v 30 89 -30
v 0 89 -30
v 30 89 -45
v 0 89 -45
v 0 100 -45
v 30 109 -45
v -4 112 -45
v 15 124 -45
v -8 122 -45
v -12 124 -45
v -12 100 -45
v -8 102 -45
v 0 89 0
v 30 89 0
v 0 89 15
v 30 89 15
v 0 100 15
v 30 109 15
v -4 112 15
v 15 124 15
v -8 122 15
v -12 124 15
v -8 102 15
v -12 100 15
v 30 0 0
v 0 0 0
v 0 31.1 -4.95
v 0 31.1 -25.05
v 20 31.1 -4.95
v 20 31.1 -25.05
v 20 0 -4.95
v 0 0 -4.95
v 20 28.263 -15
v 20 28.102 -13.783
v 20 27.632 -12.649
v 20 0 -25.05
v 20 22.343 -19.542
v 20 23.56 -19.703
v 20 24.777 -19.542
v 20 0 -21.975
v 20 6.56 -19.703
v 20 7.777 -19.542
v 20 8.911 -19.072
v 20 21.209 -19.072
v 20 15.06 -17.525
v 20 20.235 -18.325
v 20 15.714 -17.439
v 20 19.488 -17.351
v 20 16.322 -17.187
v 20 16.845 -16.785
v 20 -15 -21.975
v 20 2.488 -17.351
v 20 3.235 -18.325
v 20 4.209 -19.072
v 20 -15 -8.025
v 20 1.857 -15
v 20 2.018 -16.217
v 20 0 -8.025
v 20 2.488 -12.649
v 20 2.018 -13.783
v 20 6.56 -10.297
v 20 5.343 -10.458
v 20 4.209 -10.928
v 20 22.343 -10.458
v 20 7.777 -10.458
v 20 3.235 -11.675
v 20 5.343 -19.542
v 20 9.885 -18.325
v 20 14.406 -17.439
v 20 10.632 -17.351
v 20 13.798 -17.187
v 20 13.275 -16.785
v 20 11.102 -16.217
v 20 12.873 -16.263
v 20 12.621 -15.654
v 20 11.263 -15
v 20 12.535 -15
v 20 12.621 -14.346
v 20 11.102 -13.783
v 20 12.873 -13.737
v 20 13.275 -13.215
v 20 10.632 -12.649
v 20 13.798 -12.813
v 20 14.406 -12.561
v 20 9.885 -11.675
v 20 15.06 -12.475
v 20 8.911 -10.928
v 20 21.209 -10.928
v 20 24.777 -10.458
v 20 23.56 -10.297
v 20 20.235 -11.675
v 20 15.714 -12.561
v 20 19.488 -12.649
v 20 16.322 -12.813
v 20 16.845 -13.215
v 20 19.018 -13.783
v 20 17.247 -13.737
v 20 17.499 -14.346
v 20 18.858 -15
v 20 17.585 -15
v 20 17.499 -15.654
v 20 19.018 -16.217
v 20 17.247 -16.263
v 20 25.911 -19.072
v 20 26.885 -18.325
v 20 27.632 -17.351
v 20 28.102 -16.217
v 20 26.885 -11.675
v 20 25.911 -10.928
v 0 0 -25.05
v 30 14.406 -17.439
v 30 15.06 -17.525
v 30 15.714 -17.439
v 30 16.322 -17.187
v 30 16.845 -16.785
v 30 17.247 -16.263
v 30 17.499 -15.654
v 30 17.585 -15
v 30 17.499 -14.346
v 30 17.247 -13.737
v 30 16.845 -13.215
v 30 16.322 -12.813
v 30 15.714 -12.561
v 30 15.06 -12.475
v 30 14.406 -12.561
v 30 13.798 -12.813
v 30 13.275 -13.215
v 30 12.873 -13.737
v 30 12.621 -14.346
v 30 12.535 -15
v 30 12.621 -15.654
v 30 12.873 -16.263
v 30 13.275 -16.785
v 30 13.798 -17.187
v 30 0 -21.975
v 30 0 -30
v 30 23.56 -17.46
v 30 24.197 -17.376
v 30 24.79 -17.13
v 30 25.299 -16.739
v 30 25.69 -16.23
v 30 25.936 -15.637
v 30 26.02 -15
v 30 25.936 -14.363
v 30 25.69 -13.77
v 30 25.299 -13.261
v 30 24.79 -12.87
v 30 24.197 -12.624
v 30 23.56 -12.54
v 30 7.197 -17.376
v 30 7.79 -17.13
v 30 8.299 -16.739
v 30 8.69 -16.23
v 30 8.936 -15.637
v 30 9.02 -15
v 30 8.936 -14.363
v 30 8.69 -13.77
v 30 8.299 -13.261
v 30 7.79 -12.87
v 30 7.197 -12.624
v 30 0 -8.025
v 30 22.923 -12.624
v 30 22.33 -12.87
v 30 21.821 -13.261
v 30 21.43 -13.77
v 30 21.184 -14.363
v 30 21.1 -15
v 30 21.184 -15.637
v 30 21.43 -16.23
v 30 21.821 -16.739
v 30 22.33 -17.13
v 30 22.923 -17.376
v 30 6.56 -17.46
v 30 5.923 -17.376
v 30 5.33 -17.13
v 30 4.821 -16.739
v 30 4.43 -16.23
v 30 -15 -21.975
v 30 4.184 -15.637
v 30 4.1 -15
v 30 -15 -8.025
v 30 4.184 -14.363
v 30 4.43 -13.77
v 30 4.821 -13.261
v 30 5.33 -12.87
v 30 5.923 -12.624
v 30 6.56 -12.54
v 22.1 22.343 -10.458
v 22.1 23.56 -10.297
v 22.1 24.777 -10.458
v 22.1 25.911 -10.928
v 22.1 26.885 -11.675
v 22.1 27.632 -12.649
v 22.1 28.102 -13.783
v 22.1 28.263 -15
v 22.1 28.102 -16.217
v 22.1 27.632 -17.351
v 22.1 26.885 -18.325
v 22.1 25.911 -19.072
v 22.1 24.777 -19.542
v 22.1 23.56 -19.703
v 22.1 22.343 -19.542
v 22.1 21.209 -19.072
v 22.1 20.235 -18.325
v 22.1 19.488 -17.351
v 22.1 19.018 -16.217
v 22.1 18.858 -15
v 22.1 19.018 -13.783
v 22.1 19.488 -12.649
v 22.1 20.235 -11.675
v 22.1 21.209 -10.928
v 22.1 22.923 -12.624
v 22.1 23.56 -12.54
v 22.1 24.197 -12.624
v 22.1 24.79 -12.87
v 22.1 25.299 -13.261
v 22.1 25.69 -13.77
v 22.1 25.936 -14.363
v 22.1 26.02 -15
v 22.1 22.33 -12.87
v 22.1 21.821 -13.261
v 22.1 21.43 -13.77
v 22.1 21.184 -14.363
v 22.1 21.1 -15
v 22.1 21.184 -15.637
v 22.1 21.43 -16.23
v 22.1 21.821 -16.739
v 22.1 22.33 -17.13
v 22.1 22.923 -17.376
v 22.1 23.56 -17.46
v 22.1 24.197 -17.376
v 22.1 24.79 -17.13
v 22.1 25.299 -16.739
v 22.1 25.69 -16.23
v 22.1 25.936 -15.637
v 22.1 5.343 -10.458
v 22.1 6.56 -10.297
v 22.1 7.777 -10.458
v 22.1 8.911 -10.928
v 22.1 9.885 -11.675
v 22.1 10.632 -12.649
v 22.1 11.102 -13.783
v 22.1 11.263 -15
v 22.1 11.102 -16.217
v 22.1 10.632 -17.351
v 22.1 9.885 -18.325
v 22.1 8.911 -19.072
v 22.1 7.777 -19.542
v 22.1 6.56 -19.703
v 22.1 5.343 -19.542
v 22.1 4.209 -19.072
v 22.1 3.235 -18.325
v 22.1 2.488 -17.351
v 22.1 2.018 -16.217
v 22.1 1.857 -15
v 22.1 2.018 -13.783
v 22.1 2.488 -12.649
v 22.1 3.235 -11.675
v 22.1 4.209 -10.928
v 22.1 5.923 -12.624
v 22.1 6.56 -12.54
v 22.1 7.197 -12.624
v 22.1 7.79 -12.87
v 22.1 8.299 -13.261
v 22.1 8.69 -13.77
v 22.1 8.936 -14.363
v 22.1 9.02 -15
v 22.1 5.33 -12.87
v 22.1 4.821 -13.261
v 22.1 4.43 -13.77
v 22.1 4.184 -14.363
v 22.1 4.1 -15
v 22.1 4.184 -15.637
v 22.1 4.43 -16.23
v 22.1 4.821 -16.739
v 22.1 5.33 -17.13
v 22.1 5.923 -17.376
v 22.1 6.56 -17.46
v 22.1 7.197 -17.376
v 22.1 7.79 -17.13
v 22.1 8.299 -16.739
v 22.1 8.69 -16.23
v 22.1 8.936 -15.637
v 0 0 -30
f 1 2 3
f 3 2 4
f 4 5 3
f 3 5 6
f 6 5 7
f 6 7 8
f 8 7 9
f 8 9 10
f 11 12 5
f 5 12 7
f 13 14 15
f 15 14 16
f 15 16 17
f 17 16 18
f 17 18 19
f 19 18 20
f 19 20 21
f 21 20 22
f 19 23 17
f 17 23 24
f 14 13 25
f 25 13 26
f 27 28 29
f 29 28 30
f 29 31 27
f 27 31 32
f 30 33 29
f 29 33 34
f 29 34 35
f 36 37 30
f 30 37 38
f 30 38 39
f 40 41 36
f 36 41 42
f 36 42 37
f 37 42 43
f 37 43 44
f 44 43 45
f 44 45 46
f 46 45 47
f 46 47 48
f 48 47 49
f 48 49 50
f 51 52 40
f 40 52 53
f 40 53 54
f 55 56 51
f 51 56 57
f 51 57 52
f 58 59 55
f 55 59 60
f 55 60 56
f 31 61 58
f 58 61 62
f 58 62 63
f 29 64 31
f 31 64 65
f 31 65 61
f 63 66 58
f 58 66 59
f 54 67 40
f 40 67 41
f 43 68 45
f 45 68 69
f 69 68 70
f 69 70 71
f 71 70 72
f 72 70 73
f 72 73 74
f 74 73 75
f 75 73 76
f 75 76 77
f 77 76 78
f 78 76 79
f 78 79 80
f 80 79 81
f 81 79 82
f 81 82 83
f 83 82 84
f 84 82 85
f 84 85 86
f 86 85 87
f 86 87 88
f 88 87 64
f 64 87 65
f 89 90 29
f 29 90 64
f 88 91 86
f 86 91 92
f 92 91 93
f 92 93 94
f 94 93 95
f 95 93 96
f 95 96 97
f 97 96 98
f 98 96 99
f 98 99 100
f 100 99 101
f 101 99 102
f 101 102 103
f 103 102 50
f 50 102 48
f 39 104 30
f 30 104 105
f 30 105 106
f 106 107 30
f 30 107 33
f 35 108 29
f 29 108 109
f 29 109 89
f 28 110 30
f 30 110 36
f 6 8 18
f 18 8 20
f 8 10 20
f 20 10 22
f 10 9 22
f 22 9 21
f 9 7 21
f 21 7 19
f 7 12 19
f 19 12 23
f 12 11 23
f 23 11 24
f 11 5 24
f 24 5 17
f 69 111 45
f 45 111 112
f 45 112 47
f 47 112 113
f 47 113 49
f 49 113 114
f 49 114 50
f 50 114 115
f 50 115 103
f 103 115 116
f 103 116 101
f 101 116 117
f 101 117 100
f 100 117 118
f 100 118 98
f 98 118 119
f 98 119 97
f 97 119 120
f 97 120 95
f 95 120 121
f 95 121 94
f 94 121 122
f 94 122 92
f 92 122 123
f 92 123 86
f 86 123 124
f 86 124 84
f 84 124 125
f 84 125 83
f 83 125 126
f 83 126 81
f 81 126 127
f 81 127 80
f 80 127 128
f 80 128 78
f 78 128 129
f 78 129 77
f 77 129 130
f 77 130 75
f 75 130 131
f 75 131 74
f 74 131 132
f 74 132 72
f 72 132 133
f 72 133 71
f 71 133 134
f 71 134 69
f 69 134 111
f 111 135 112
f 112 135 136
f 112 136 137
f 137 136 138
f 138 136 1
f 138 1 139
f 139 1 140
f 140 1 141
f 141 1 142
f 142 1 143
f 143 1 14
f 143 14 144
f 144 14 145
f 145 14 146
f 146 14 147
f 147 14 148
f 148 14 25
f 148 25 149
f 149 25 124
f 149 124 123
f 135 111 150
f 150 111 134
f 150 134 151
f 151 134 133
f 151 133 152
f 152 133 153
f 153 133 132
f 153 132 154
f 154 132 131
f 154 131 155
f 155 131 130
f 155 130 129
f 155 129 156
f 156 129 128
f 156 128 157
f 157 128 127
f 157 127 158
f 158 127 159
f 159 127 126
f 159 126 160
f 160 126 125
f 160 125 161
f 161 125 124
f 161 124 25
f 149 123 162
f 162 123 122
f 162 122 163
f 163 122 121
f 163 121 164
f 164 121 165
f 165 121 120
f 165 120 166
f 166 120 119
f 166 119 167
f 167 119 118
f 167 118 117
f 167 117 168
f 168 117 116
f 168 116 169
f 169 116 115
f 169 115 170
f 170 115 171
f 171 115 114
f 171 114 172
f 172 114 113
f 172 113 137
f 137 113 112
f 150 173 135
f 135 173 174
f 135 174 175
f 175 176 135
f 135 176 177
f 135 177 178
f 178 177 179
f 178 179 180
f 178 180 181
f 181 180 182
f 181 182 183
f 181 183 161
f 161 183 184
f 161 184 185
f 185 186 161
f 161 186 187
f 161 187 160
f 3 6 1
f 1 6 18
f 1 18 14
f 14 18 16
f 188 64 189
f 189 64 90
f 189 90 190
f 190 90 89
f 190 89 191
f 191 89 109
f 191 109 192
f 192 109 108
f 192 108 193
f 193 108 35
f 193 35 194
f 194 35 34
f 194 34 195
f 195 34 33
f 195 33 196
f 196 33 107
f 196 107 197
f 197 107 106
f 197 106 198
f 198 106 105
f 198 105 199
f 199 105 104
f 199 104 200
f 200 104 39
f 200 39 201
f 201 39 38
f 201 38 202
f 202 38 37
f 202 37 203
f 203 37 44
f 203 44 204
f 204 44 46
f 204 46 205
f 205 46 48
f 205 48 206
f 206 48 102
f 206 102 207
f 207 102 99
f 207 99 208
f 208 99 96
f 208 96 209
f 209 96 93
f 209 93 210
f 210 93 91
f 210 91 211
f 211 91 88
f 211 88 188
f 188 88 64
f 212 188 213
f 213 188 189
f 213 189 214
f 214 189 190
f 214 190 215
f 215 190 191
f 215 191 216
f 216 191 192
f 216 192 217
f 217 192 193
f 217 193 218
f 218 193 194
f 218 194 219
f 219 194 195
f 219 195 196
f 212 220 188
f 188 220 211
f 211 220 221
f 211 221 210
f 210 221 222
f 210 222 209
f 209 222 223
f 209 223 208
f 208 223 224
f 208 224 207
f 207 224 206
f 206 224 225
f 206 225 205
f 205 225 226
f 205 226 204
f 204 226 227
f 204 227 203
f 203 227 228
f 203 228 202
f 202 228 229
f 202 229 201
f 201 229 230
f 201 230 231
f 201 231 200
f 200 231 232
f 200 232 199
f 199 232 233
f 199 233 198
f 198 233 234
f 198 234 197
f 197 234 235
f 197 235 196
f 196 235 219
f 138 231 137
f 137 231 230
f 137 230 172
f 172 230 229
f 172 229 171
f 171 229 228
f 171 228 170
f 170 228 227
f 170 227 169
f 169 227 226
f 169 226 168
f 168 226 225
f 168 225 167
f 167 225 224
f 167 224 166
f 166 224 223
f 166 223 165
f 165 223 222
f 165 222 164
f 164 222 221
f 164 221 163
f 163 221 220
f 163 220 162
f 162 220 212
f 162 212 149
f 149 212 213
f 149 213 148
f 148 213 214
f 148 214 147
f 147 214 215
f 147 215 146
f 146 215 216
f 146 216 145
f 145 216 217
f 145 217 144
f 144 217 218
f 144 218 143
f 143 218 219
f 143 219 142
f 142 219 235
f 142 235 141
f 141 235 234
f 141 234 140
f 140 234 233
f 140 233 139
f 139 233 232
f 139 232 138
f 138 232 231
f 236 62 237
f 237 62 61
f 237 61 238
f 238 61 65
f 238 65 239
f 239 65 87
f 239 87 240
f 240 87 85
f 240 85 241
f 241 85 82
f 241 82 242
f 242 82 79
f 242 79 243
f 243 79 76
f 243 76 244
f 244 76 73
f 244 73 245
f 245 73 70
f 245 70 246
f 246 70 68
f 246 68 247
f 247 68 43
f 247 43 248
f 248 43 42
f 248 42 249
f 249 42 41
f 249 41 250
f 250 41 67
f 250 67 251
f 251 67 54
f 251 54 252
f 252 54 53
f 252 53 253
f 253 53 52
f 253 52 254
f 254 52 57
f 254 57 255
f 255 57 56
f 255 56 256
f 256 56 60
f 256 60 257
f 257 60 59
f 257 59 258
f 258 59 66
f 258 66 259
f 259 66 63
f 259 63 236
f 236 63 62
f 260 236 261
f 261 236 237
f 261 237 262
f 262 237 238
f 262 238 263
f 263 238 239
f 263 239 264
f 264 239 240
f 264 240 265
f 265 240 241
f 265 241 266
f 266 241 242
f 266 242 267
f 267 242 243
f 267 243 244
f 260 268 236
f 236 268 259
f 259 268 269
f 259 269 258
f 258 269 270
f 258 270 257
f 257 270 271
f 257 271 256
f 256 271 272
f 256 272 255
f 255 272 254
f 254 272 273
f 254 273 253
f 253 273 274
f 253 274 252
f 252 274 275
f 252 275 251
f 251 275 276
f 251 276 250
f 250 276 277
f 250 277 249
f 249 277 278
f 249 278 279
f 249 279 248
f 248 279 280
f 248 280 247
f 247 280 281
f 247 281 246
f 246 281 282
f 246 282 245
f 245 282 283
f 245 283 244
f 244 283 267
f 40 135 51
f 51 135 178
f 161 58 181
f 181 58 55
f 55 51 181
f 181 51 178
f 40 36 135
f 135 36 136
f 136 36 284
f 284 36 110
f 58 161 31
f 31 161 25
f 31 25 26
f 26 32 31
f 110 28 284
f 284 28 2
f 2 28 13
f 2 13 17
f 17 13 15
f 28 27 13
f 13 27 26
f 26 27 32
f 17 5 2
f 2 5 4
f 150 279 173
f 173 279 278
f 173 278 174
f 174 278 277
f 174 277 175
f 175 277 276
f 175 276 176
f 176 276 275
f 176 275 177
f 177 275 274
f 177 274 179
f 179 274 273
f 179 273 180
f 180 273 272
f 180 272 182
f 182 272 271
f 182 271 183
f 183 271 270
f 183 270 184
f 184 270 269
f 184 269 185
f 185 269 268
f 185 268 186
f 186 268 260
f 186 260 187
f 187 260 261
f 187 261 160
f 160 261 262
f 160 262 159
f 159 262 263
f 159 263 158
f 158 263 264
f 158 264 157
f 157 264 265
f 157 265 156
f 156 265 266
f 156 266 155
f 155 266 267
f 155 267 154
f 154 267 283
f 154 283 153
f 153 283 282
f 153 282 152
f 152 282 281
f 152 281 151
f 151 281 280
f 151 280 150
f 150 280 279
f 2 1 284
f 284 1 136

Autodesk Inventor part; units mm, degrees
ref_plane "YZ Plane" through (0, 0, 0) normal (1, 0, 0) x (0, 1, 0)
ref_plane "XZ Plane" through (0, 0, 0) normal (0, 1, 0) x (-1, 0, 0)
sketch "Sketch1" plane through (0, 0, 0) normal (0, 0, 1) x (1, 0, 0)
  line L0 (0, 0) -> (25, 0)
  line L1 (25, 0) -> (25, 40)
  line L2 (25, 40) -> (0, 40)
  line L3 (0, 40) -> (0, 0)
  dimension "d1" = 25
  dimension "d2" = 40
  dimension "d3" = 25
extrude "Extrusion1" add sketch "Sketch1" against normal blind 30
sketch "Sketch2" plane through (25, 0, 0) normal (1, 0, 0) x (0, 0, -1)
  line L0 (0, 0) -> (30, 0) projected
  circle A0 centre (15, 6.56) radius 2.46
extrude "Extrusion2" cut sketch "Sketch2" against normal blind 30
sketch "Sketch3" plane through (0, 0, 0) normal (-1, 0, 0) x (0, 0, 1)
  line L0 (0, 0) -> (-30, 0) projected
  line L1 (-25.05, 0) -> (-4.95, 0)
  line L2 (-4.95, 0) -> (-4.95, 33.12)
  line L3 (-4.95, 33.12) -> (-25.05, 33.12)
  line L4 (-25.05, 33.12) -> (-25.05, 0)
  dimension "d11" = 20.1
extrude "Extrusion3" cut sketch "Sketch3" against normal blind 20
sketch "Sketch4" plane through (0, 0, 0) normal (0, -1, 0) x (1, 0, 0)
  line L0 (20, -4.95) -> (20, -25.05) projected
  line L1 (20, -15) -> (25, -15)
  line L2 (25, 0) -> (25, -30) projected
  line L3 (20, -8.025) -> (25, -8.025)
  line L4 (25, -8.025) -> (25, -21.975)
  line L5 (25, -21.975) -> (20, -21.975)
  line L6 (20, -21.975) -> (20, -8.025)
  line L7 (20, -8.025) -> (25, -21.975) construction
  line L8 (25, -8.025) -> (20, -21.975) construction
  line L9 (25, -12.54) -> (25, -17.46) projected
  point P0 (0, 0)
  point P1 (22.5, -15)
  dimension "d14" = 13.95
extrude "Extrusion4" add sketch "Sketch4" along normal blind 15
sketch "Sketch5" plane through (20, 0, 0) normal (-1, 0, 0) x (0, 0, 1)
  circle A0 centre (-15, 6.56) radius 2.46 projected
  circle A1 centre (-15, 6.56) radius 4.7025
  circle A2 centre (-15, 6.56) radius 2.46 projected
  circle A3 centre (-15, 6.56) radius 2.46
  point P0 (0, 0)
  dimension "d17" = 9.405
extrude "Extrusion5" cut sketch "Sketch5" against normal blind 2.1
sketch "Sketch6" plane through (25, 0, 0) normal (1, 0, 0) x (0, 0, -1)
  circle A0 centre (15, 6.56) radius 4.7025 projected
  line L0 (15, 6.56) -> (15, 23.56)
  circle A1 centre (15, 23.56) radius 2.46
  point P0 (0, 0)
  dimension "d20" = 17
  dimension "d21" = 4.92
extrude "Extrusion6" cut sketch "Sketch6" against normal blind 10 contours A1
sketch "Sketch7" plane through (20, 0, 0) normal (-1, 0, 0) x (0, 0, 1)
  circle A0 centre (-15, 23.56) radius 2.46 projected
  circle A1 centre (-15, 23.56) radius 4.7025
  point P0 (0, 0)
  dimension "d24" = 9.405
extrude "Extrusion7" cut sketch "Sketch7" against normal blind 2.1
sketch "Sketch9" plane through (25, 0, 0) normal (1, 0, 0) x (0, 0, -1)
  circle A0 centre (15, 6.56) radius 2.46 projected
  circle A1 centre (15, 6.56) radius 2.46
  circle A2 centre (15, 23.56) radius 2.46 projected
  circle A3 centre (15, 23.56) radius 2.46
  line L0 (30, 40) -> (30, 0) projected
  line L1 (30, 0) -> (30, 40)
  line L2 (30, 40) -> (0, 40)
  line L3 (0, 40) -> (0, 0)
  line L4 (0, 0) -> (8.025, 0) projected
  line L5 (21.975, 0) -> (21.975, -15)
  line L6 (21.975, -15) -> (8.025, -15)
  line L7 (8.025, -15) -> (8.025, 0)
  line L8 (0, 0) -> (8.025, 0)
  line L9 (21.975, 0) -> (30, 0)
extrude "Extrusion8" add sketch "Sketch9" along normal blind 5
sketch "Sketch10" plane through (0, 40, 0) normal (0, 1, 0) x (1, 0, 0)
  line L0 (0, 30) -> (30, 30) projected
  line L1 (30, 0) -> (0, 0) projected
  line L2 (0, 30) -> (30, 30)
  line L3 (30, 30) -> (30, 0)
  line L4 (30, 0) -> (0, 0)
  line L5 (0, 0) -> (0, 30)
extrude "Extrusion9" add sketch "Sketch10" along normal blind 30
sketch "Sketch12" plane through (30, 0, 0) normal (1, 0, 0) x (0, 0, -1)
  circle A0 centre (15, 6.56) radius 2.46 projected
  line L0 (15, 6.56) -> (15, 15.06)
  circle A1 centre (15, 15.06) radius 2.525
  point P0 (0, 0)
  dimension "d31" = 8.5
  dimension "d33" = 5.05
extrude "Extrusion10" cut sketch "Sketch12" against normal blind 30 contours A1
sketch "Sketch14" plane through (0, 0, 0) normal (0, 0, 1) x (1, 0, 0)
  line L0 (30, 70) -> (0, 70) projected
  line L1 (0, 70) -> (0, 85)
  line L2 (30, 0) -> (30, 70) projected
  line L3 (30, 109) -> (30, 70)
  line L4 (30, 105) -> (30, 100)
  line L5 (-12, 124) -> (15, 124)
  line L6 (-8, 122) -> (-12, 124)
  line L7 (-8, 122) -> (-4, 112)
  line L8 (-8, 102) -> (-12, 100)
  line L9 (-8, 102) -> (-4, 112)
  line L10 (30, 109) -> (15, 124)
  line L11 (0, 85) -> (0, 100)
  line L12 (0, 100) -> (-12, 100)
  point P0 (0, 0)
  dimension "d69" = 12
extrude "Extrusion12" add sketch "Sketch14" against normal blind 30
sketch "Sketch15" plane through (0, 0, -25.05) normal (-1, 0, 0) x (0, 0, 1)
  line L0 (0, 33.12) -> (20.1, 33.12) projected
  line L1 (20.1, 33.12) -> (20.1, 0) projected
  line L2 (0, 33.12) -> (20.1, 33.12)
  line L3 (20.1, 33.12) -> (20.1, 31.1)
  line L4 (20.1, 31.1) -> (0, 31.1)
  line L5 (0, 31.1) -> (0, 33.12)
  point P0 (25.05, 0)
  dimension "d57" = 2.02
extrude "Extrusion13" add sketch "Sketch15" against normal blind 20
sketch "Sketch19" plane through (0, 0, 0) normal (0, 0, 1) x (1, 0, 0)
  line L0 (0, 100) -> (-12, 100) projected
  line L1 (0, 100) -> (-12, 100)
  line L2 (-12, 100) -> (-8, 102) projected
  line L3 (-12, 100) -> (-8, 102)
  line L4 (-8, 102) -> (-4, 112) projected
  line L5 (-8, 102) -> (-4, 112)
  line L6 (-4, 112) -> (-8, 122) projected
  line L7 (-4, 112) -> (-8, 122)
  line L8 (-8, 122) -> (-12, 124) projected
  line L9 (-8, 122) -> (-12, 124)
  line L10 (-12, 124) -> (15, 124) projected
  line L11 (-12, 124) -> (15, 124)
  line L12 (15, 124) -> (30, 109) projected
  line L13 (15, 124) -> (30, 109)
  line L14 (30, 109) -> (30, 89)
  line L15 (30, 89) -> (0, 89)
  line L16 (0, 89) -> (0, 100)
  point P0 (0, 0)
  dimension "d71" = 20
  dimension "d72" = 30
extrude "Extrusion14" add sketch "Sketch19" along normal blind 15
ref_plane "Work Plane1" through (0, 0, -15) normal (0, 0, 1) x (1, 0, 0)
mirror "Mirror1" about plane through (0, 0, -15) normal (0, 0, 1) of "Extrusion14"
properties part number "rec_b_20mm_x_60mm"
